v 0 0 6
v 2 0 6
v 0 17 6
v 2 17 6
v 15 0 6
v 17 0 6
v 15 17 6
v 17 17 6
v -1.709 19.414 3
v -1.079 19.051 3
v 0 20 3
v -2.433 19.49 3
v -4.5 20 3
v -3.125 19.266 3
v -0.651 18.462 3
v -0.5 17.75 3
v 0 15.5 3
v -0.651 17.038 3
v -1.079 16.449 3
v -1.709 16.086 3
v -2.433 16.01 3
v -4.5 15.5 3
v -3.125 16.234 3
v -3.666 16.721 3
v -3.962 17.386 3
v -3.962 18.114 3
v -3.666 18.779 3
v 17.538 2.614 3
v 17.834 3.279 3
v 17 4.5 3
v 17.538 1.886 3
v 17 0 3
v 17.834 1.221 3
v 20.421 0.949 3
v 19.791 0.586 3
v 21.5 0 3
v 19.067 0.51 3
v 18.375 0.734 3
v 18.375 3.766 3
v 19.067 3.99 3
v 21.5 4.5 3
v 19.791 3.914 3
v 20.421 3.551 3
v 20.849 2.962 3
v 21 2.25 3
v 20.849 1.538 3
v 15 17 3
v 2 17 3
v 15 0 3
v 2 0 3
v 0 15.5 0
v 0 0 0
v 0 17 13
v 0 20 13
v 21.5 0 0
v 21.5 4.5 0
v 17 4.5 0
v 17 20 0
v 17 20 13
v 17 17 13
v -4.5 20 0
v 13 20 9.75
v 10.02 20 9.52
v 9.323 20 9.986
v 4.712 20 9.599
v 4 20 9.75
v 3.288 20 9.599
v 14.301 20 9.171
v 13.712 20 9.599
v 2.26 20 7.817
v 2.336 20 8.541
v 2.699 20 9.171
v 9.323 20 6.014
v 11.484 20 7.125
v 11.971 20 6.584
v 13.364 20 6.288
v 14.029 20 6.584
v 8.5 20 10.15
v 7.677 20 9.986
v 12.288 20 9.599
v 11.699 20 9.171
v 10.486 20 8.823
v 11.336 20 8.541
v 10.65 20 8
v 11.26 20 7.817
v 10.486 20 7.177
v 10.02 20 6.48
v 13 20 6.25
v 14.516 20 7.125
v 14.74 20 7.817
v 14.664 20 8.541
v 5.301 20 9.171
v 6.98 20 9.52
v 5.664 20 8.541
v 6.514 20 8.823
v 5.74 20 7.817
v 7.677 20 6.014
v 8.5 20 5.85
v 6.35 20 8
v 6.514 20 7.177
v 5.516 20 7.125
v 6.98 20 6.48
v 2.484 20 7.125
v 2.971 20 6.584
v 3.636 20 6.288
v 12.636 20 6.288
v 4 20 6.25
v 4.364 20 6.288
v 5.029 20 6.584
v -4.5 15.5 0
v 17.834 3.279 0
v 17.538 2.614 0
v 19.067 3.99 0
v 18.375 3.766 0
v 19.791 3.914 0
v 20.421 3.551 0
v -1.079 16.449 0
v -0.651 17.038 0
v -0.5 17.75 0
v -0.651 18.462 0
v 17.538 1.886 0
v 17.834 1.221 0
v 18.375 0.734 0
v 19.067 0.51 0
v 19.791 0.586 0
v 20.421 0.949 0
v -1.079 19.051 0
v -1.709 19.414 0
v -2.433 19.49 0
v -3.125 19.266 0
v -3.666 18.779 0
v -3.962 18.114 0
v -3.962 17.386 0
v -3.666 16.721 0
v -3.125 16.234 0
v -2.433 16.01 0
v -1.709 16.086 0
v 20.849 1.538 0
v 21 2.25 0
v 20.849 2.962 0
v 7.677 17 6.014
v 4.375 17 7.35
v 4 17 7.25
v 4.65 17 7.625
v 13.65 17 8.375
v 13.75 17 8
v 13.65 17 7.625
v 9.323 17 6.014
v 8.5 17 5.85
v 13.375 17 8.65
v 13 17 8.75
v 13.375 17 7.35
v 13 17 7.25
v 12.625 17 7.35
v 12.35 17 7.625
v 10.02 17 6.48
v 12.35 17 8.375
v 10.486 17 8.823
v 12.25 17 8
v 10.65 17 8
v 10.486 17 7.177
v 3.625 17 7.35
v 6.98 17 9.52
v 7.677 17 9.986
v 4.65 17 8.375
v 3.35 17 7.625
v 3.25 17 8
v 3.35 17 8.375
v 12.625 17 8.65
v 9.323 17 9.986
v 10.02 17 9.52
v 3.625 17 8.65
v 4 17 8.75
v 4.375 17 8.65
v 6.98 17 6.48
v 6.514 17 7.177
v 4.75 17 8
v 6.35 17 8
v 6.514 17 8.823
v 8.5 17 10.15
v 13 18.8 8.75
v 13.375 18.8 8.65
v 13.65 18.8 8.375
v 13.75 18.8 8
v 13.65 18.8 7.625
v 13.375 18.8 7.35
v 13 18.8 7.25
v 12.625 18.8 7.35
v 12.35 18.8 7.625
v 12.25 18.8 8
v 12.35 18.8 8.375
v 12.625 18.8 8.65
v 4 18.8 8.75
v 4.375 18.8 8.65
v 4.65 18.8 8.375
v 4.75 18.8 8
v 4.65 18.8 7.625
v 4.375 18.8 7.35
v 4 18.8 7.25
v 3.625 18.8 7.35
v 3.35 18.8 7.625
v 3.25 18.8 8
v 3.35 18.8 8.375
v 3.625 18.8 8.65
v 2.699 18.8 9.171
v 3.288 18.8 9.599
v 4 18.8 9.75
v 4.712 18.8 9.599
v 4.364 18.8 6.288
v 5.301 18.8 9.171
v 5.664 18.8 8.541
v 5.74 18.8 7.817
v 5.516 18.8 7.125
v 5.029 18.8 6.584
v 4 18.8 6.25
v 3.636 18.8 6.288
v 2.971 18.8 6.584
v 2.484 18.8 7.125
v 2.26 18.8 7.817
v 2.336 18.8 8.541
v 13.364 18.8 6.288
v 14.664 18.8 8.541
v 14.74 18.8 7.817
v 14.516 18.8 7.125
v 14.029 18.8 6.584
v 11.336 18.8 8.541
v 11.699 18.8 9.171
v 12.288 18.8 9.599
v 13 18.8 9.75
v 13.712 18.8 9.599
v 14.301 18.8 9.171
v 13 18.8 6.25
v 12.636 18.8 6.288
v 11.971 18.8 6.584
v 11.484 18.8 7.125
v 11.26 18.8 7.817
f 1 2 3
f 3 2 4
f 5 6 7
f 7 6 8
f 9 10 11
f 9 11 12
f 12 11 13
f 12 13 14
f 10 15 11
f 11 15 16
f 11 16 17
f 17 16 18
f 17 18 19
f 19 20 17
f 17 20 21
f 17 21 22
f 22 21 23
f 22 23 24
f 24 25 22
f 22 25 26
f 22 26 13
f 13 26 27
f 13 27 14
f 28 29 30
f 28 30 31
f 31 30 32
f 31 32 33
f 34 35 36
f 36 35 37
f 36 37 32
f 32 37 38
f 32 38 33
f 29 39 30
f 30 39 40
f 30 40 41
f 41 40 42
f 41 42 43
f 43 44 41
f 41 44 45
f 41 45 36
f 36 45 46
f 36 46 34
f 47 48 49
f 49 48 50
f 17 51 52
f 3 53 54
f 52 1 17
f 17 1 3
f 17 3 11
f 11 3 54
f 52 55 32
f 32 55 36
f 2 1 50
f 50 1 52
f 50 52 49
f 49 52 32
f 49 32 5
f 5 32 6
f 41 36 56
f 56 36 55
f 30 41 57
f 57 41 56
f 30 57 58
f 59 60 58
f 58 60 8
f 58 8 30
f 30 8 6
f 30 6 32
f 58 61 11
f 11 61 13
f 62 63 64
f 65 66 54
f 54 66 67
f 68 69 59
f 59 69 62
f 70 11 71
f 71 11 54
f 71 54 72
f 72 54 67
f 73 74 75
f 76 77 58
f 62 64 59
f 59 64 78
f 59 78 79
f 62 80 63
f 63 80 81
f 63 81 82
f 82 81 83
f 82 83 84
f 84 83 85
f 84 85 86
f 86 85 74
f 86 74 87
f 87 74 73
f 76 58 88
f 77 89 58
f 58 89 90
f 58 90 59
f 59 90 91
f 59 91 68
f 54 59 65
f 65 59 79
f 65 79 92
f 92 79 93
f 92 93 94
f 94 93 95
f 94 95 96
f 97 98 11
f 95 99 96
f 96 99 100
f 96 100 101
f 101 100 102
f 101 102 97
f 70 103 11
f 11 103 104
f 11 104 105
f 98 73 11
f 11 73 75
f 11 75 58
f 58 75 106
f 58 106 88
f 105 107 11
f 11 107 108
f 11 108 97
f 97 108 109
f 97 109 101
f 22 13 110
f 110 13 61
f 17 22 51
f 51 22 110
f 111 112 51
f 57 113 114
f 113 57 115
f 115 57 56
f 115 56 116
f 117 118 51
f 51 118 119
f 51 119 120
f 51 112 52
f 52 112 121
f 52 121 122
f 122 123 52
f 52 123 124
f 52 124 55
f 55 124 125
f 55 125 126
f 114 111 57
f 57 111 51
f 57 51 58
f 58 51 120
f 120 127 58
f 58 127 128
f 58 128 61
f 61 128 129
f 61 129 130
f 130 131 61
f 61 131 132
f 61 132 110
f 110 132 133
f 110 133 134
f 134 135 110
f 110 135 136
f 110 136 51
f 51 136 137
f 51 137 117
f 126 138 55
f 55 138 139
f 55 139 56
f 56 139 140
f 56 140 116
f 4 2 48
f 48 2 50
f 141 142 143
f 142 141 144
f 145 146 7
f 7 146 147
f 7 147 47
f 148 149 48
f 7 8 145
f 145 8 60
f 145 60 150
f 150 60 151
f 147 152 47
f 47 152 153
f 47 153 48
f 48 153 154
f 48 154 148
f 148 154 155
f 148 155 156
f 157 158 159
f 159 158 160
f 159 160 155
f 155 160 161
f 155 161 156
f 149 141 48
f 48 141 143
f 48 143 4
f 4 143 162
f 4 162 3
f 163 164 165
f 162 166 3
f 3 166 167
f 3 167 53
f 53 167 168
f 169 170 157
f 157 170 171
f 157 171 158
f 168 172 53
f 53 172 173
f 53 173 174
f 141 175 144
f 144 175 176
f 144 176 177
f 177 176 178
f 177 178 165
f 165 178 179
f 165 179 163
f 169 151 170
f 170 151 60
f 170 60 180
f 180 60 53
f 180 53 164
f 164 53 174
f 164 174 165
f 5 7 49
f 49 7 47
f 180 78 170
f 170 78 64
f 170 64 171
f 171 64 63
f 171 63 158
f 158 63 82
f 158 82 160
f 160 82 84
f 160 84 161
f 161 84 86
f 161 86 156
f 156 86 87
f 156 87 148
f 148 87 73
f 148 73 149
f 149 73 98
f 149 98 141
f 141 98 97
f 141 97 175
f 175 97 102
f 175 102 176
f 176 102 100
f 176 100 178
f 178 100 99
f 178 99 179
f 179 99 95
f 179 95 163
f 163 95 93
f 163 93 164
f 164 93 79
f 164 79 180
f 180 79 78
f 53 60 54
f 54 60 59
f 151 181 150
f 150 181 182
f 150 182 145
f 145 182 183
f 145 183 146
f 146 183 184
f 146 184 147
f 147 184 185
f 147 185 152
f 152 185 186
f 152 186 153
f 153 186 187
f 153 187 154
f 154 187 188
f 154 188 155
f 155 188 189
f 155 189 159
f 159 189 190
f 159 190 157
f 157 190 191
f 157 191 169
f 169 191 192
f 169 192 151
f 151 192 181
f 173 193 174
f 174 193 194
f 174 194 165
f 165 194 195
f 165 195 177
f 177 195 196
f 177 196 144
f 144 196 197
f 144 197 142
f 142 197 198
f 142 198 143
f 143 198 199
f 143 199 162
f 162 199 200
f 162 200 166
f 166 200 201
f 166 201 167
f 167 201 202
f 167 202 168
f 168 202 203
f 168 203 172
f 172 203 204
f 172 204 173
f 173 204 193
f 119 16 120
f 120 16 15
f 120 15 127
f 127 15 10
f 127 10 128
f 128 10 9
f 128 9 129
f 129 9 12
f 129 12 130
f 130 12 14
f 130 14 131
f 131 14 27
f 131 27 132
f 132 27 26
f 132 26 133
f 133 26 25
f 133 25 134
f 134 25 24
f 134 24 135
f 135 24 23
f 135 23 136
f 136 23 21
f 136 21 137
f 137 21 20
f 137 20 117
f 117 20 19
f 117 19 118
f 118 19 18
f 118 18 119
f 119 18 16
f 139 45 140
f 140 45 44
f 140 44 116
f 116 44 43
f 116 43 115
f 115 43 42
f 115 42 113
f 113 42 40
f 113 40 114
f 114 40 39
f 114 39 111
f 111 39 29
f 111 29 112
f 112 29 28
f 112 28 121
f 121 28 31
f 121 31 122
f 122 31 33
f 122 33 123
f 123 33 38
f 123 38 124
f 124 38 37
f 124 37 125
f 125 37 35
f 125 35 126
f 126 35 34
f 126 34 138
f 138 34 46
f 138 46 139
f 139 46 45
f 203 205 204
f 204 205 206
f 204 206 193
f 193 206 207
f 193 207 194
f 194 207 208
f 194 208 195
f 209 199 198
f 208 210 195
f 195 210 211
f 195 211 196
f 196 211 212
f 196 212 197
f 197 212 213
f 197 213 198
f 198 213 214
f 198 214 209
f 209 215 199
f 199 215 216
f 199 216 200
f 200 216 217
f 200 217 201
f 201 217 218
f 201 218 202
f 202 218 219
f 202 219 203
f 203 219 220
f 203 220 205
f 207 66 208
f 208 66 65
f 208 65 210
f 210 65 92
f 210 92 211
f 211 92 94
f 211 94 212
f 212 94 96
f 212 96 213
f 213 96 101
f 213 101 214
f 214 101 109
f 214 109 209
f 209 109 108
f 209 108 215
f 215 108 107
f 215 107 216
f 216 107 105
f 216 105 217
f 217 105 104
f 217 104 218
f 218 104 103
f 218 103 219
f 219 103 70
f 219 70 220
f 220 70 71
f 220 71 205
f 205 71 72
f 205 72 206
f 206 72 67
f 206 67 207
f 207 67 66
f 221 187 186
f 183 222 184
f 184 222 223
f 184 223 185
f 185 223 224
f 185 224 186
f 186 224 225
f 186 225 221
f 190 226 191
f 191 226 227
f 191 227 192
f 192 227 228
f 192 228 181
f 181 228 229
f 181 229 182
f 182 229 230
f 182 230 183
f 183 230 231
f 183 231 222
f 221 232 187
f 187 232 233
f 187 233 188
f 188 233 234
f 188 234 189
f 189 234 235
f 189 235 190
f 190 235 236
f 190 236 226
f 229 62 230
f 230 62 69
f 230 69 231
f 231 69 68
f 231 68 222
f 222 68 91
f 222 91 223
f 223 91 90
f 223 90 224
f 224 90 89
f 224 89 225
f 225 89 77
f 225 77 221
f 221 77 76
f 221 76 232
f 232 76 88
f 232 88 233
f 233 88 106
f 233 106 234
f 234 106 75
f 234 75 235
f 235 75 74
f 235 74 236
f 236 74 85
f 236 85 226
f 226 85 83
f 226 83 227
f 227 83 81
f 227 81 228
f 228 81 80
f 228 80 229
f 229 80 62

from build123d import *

# Parameters (mm, degrees)
BOSS_EXTRUDE1_DEPTH = 3
BOSS_EXTRUDE2_DEPTH = 3
SKETCH3_W           = 17
SKETCH3_H           = 13
SKETCH3_R           = 2.15
SKETCH3_R_2         = 0.75
BOSS_EXTRUDE3_DEPTH = 3
CUT_EXTRUDE2_REACH  = 32.336
SKETCH6_R           = 2.15
CUT_EXTRUDE3_REACH  = 33.02
SKETCH8_R           = 1.75
SKETCH4_R           = 1.75
CUT_EXTRUDE4_DEPTH  = 1.2


with BuildPart() as part:
    # Sketch1 → Boss-Extrude1 (new body)
    with BuildSketch(Plane.XY):
        Polygon((0, 0), (17, 0), (21.5, 0), (21.5, 4.5), (17, 4.5), (17, 20), (0, 20), (-4.5, 20), (-4.5, 15.5), (0, 15.5), align=None)
    extrude(amount=BOSS_EXTRUDE1_DEPTH)

    # Sketch2 → Boss-Extrude2 (add)
    with BuildSketch(Plane.XY.offset(3)):
        Polygon((0, 20), (0, 15.5), (0, 0), (2, 0), (2, 17), (15, 17), (15, 0), (17, 0), (17, 20), align=None)
    extrude(amount=BOSS_EXTRUDE2_DEPTH)

    # Sketch3 → Boss-Extrude3 (add)
    with BuildSketch(Plane(origin=(0, 20, 0), x_dir=(1, 0, 0), z_dir=(0, 1, 0))):
        with Locations((8.5, -6.5)):
            Rectangle(SKETCH3_W, SKETCH3_H)
        with Locations((8.5, -8)):
            Circle(SKETCH3_R, mode=Mode.SUBTRACT)
        with Locations((13, -8)):
            Circle(SKETCH3_R_2, mode=Mode.SUBTRACT)
        with Locations((4, -8)):
            Circle(SKETCH3_R_2, mode=Mode.SUBTRACT)
    extrude(amount=-BOSS_EXTRUDE3_DEPTH)

    # Sketch6 → Cut-Extrude2 (cut, up to next)
    with BuildSketch(Plane(origin=(0, 17, 0), x_dir=(-1, 0, 0), z_dir=(0, -1, 0)), mode=Mode.PRIVATE) as cut_extrude2_sk1:
        with Locations((-8.5, -8)):
            Circle(SKETCH6_R)
    cut_extrude2_tool1 = extrude(cut_extrude2_sk1.sketch, amount=-CUT_EXTRUDE2_REACH, mode=Mode.PRIVATE) & part.part
    add(cut_extrude2_tool1.solids().sort_by_distance((8.5, 17, 8))[0], mode=Mode.SUBTRACT)

    # Sketch8 → Cut-Extrude3 (cut, up to next)
    with BuildSketch(Plane.XY.offset(3), mode=Mode.PRIVATE) as cut_extrude3_sk1:
        with Locations((19.25, 2.25)):
            Circle(SKETCH8_R)
    cut_extrude3_tool1 = extrude(cut_extrude3_sk1.sketch, amount=-CUT_EXTRUDE3_REACH, mode=Mode.PRIVATE) & part.part
    # Sketch8 → Cut-Extrude3 (cut, up to next)
    with BuildSketch(Plane.XY.offset(3), mode=Mode.PRIVATE) as cut_extrude3_sk2:
        with Locations((-2.25, 17.75)):
            Circle(SKETCH8_R)
    cut_extrude3_tool2 = extrude(cut_extrude3_sk2.sketch, amount=-CUT_EXTRUDE3_REACH, mode=Mode.PRIVATE) & part.part
    add(cut_extrude3_tool1.solids().sort_by_distance((19.25, 2.25, 3))[0], mode=Mode.SUBTRACT)
    add(cut_extrude3_tool2.solids().sort_by_distance((-2.25, 17.75, 3))[0], mode=Mode.SUBTRACT)

    # Sketch4 → Cut-Extrude4 (cut)
    with BuildSketch(Plane(origin=(0, 20, 0), x_dir=(-1, 0, 0), z_dir=(0, -1, 0))):
        with Locations((-4, -8)):
            Circle(SKETCH4_R)
        with Locations((-13, -8)):
            Circle(SKETCH4_R)
    extrude(amount=CUT_EXTRUDE4_DEPTH, mode=Mode.SUBTRACT)


solid = part.part
